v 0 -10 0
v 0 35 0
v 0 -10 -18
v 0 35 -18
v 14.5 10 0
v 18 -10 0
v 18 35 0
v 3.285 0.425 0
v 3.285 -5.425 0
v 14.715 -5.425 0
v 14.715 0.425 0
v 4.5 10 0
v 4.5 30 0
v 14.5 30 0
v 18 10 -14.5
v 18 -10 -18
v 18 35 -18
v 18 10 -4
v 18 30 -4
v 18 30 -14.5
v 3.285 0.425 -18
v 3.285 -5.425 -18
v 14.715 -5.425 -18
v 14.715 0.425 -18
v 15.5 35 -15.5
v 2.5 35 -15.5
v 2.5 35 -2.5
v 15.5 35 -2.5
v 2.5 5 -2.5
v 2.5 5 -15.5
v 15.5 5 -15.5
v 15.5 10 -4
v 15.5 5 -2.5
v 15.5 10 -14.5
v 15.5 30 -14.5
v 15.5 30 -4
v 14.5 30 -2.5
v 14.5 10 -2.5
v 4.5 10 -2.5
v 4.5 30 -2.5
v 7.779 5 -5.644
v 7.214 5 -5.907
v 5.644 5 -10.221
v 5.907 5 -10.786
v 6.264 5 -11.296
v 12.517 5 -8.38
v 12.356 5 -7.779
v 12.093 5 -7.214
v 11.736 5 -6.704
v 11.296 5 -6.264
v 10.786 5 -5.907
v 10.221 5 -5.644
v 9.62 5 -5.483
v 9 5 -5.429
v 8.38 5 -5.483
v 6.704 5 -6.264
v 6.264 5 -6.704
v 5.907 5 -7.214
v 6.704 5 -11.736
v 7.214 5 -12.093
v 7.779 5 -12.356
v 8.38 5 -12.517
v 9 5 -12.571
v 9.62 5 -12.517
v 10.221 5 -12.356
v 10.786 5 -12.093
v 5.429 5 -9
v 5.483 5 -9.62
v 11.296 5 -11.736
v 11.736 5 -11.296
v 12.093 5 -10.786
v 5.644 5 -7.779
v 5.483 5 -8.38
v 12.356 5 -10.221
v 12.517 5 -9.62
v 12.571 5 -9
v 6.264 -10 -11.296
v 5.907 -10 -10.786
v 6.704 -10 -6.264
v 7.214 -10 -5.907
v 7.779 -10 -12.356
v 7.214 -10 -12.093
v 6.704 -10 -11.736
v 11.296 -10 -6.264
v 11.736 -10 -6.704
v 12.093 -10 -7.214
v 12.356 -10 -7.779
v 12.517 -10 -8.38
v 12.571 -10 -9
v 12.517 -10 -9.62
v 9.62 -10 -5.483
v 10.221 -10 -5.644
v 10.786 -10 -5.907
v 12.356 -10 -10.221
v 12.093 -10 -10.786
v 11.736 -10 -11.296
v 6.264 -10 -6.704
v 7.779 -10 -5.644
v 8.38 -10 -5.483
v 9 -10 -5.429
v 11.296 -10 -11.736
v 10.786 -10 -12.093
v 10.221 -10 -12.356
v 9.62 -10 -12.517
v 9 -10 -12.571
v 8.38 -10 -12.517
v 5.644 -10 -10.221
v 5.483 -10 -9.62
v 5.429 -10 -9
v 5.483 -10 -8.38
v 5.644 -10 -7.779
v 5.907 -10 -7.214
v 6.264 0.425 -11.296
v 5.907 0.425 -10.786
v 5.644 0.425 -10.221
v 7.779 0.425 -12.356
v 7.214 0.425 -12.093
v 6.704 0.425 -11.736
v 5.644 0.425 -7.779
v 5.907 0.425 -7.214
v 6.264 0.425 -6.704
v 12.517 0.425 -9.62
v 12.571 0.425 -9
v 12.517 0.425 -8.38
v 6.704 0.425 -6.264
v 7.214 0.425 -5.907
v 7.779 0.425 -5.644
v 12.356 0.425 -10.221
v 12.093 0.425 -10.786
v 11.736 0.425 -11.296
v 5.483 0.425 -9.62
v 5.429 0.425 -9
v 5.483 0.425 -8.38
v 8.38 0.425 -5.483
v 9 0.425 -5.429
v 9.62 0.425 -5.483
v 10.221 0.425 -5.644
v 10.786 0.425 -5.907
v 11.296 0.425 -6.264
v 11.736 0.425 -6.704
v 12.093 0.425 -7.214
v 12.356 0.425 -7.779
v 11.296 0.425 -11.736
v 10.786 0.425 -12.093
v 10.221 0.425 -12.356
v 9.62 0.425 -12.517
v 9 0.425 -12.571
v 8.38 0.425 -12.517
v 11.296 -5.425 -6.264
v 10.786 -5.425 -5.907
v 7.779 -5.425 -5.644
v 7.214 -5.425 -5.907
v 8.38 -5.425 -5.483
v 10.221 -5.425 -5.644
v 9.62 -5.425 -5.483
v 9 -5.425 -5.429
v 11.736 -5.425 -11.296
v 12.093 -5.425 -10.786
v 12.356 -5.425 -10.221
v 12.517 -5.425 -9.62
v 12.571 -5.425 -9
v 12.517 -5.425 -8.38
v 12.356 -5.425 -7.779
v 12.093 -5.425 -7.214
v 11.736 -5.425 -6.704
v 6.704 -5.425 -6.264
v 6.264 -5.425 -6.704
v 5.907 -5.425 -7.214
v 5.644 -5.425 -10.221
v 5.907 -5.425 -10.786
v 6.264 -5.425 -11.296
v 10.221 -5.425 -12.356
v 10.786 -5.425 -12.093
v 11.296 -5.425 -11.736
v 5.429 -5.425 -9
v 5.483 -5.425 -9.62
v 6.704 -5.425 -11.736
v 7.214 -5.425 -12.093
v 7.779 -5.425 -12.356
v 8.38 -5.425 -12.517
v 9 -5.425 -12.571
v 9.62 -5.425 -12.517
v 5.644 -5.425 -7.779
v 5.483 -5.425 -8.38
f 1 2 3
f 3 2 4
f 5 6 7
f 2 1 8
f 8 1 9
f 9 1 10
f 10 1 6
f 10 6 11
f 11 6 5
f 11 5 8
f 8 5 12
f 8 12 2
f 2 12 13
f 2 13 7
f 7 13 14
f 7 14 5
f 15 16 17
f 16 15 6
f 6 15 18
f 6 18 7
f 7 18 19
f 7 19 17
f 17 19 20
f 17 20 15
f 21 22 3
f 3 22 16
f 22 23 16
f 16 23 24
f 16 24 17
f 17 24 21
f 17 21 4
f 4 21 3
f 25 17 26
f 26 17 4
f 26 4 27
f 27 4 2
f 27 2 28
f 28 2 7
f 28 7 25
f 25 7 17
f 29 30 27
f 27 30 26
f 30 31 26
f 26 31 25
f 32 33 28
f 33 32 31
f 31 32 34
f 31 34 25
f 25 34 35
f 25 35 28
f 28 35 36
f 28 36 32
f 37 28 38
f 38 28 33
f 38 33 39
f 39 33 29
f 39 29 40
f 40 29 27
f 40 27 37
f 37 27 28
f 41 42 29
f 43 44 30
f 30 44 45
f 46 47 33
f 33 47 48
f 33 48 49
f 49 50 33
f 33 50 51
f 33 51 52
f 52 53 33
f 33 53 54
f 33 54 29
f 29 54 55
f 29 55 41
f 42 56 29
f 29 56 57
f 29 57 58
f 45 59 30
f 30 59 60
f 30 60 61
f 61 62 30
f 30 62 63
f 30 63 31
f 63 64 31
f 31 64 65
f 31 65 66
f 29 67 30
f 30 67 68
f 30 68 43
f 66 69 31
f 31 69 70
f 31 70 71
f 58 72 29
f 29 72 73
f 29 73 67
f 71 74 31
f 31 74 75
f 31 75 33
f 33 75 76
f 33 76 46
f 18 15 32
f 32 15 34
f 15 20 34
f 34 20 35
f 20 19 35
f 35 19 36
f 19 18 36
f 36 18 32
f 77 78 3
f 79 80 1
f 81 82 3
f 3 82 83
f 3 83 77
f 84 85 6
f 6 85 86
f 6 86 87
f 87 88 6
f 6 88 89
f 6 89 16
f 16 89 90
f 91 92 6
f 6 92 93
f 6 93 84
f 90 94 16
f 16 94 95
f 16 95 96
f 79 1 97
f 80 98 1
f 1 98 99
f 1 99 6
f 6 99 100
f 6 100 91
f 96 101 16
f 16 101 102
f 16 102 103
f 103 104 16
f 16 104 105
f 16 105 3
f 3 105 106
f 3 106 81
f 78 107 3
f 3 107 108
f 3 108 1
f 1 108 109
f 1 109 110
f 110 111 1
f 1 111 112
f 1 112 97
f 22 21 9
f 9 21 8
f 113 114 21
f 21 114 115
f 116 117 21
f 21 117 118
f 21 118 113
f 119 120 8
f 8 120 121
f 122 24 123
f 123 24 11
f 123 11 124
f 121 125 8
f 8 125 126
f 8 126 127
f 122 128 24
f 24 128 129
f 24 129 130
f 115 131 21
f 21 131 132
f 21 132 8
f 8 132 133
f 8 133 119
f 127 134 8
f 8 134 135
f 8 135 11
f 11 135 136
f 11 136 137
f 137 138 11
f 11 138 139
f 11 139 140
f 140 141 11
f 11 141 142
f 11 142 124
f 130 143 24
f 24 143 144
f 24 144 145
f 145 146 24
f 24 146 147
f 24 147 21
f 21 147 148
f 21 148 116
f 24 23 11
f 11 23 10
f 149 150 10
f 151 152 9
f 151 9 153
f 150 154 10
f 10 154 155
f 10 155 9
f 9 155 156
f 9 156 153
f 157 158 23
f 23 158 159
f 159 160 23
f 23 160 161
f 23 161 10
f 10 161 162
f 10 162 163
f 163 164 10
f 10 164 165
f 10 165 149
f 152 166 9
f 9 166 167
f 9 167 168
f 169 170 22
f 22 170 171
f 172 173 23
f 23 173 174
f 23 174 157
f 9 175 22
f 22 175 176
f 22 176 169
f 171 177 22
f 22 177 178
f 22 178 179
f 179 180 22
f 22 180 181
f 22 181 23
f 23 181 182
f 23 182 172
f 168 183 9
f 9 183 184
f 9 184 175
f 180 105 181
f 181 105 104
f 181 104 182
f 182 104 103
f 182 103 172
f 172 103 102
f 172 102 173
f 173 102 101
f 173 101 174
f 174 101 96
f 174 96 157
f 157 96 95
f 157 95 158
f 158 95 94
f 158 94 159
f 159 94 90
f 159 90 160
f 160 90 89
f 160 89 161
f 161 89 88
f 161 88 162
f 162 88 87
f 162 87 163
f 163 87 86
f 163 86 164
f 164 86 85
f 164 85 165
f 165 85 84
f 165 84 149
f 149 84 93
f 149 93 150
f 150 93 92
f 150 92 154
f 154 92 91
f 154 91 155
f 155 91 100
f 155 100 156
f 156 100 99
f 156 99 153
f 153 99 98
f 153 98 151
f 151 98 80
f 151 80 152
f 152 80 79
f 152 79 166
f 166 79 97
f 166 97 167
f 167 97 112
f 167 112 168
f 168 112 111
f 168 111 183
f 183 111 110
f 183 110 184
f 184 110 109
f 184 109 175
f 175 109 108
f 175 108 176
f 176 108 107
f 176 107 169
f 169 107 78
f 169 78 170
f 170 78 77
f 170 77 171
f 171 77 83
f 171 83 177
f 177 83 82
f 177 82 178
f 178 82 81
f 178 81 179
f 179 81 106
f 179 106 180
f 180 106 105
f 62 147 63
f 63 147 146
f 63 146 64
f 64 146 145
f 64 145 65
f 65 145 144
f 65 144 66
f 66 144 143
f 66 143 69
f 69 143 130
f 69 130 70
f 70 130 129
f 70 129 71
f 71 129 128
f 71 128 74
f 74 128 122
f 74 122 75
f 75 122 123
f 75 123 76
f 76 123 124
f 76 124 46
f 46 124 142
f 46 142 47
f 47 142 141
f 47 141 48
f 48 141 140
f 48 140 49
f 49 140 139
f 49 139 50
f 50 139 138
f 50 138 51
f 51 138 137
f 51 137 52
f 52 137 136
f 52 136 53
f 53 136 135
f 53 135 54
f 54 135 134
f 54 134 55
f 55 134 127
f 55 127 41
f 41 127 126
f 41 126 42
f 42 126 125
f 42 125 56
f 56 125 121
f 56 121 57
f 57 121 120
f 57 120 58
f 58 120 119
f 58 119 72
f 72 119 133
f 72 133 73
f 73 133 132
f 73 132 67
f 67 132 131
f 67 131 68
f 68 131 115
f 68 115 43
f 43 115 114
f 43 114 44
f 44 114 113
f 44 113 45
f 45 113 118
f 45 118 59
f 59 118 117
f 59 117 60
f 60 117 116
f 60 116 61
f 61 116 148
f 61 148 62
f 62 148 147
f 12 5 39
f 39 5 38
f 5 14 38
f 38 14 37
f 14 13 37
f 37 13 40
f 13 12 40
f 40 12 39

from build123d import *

# Parameters (mm, degrees)
SKETCH1_W                   = 18
SKETCH1_H                   = 18
BOSS_EXTRUDE1_DEPTH         = 35
SKETCH5_W                   = 13
SKETCH5_H                   = 13
CUT_EXTRUDE1_DEPTH          = 30
CUT_EXTRUDE3_REACH          = 45.278
SKETCH7_W                   = 10.5
SKETCH7_H                   = 20
SKETCH8_W                   = 18
SKETCH8_H                   = 18
BOSS_EXTRUDE2_DEPTH         = 10
SKETCH9_W                   = 11.43
SKETCH9_H                   = 5.85
CUT_EXTRUDE4_DEPTH          = 44.278170017
F_1_4_CLEARANCE_HOLE1_D     = 7.14248
F_1_4_CLEARANCE_HOLE1_DEPTH = 15
F_1_4_CLEARANCE_HOLE1_TIP   = 2.145817477
CUT_EXTRUDE5_REACH          = 45.278
SKETCH12_W                  = 10
SKETCH12_H                  = 20


with BuildPart() as part:
    # Sketch1 → Boss-Extrude1 (new body)
    with BuildSketch(Plane(origin=(0, 0, 0), x_dir=(1, 0, 0), z_dir=(0, 1, 0))):
        with Locations((9, 9)):
            Rectangle(SKETCH1_W, SKETCH1_H)
    extrude(amount=BOSS_EXTRUDE1_DEPTH)

    # Sketch5 → Cut-Extrude1 (cut)
    with BuildSketch(Plane(origin=(0, 35, 0), x_dir=(1, 0, 0), z_dir=(0, 1, 0))):
        with Locations((9, 9)):
            Rectangle(SKETCH5_W, SKETCH5_H)
    extrude(amount=-CUT_EXTRUDE1_DEPTH, mode=Mode.SUBTRACT)

    # Sketch7 → Cut-Extrude3 (cut, up to next)
    with BuildSketch(Plane(origin=(18, 0, 0), x_dir=(0, 0, -1), z_dir=(1, 0, 0)), mode=Mode.PRIVATE) as cut_extrude3_sk1:
        with Locations((9.25, 20)):
            Rectangle(SKETCH7_W, SKETCH7_H)
    cut_extrude3_tool1 = extrude(cut_extrude3_sk1.sketch, amount=-CUT_EXTRUDE3_REACH, mode=Mode.PRIVATE) & part.part
    add(cut_extrude3_tool1.solids().sort_by_distance((18, 20, -9.25))[0], mode=Mode.SUBTRACT)

    # Sketch8 → Boss-Extrude2 (add)
    with BuildSketch(Plane.XZ):
        with Locations((9, -9)):
            Rectangle(SKETCH8_W, SKETCH8_H)
    extrude(amount=BOSS_EXTRUDE2_DEPTH)

    # Sketch9 → Cut-Extrude4 (cut, through all)
    with BuildSketch(Plane.XY):
        with Locations((9, -2.5)):
            Rectangle(SKETCH9_W, SKETCH9_H)
    extrude(amount=-CUT_EXTRUDE4_DEPTH, mode=Mode.SUBTRACT)

    # 1/4 Clearance Hole1
    with Locations(Plane(origin=(0, -10, 0), x_dir=(-1, 0, 0), z_dir=(0, -1, 0))):
        with Locations((-9, 9)):
            Hole(F_1_4_CLEARANCE_HOLE1_D / 2, depth=F_1_4_CLEARANCE_HOLE1_DEPTH)
            with Locations((0, 0, -(F_1_4_CLEARANCE_HOLE1_DEPTH + F_1_4_CLEARANCE_HOLE1_TIP / 2))):  # 118° drill point
                Cone(0, F_1_4_CLEARANCE_HOLE1_D / 2, F_1_4_CLEARANCE_HOLE1_TIP, mode=Mode.SUBTRACT)

    # Sketch12 → Cut-Extrude5 (cut, up to next)
    with BuildSketch(Plane.XY, mode=Mode.PRIVATE) as cut_extrude5_sk1:
        with Locations((9.5, 20)):
            Rectangle(SKETCH12_W, SKETCH12_H)
    cut_extrude5_tool1 = extrude(cut_extrude5_sk1.sketch, amount=-CUT_EXTRUDE5_REACH, mode=Mode.PRIVATE) & part.part
    add(cut_extrude5_tool1.solids().sort_by_distance((9.5, 20, 0))[0], mode=Mode.SUBTRACT)


solid = part.part
